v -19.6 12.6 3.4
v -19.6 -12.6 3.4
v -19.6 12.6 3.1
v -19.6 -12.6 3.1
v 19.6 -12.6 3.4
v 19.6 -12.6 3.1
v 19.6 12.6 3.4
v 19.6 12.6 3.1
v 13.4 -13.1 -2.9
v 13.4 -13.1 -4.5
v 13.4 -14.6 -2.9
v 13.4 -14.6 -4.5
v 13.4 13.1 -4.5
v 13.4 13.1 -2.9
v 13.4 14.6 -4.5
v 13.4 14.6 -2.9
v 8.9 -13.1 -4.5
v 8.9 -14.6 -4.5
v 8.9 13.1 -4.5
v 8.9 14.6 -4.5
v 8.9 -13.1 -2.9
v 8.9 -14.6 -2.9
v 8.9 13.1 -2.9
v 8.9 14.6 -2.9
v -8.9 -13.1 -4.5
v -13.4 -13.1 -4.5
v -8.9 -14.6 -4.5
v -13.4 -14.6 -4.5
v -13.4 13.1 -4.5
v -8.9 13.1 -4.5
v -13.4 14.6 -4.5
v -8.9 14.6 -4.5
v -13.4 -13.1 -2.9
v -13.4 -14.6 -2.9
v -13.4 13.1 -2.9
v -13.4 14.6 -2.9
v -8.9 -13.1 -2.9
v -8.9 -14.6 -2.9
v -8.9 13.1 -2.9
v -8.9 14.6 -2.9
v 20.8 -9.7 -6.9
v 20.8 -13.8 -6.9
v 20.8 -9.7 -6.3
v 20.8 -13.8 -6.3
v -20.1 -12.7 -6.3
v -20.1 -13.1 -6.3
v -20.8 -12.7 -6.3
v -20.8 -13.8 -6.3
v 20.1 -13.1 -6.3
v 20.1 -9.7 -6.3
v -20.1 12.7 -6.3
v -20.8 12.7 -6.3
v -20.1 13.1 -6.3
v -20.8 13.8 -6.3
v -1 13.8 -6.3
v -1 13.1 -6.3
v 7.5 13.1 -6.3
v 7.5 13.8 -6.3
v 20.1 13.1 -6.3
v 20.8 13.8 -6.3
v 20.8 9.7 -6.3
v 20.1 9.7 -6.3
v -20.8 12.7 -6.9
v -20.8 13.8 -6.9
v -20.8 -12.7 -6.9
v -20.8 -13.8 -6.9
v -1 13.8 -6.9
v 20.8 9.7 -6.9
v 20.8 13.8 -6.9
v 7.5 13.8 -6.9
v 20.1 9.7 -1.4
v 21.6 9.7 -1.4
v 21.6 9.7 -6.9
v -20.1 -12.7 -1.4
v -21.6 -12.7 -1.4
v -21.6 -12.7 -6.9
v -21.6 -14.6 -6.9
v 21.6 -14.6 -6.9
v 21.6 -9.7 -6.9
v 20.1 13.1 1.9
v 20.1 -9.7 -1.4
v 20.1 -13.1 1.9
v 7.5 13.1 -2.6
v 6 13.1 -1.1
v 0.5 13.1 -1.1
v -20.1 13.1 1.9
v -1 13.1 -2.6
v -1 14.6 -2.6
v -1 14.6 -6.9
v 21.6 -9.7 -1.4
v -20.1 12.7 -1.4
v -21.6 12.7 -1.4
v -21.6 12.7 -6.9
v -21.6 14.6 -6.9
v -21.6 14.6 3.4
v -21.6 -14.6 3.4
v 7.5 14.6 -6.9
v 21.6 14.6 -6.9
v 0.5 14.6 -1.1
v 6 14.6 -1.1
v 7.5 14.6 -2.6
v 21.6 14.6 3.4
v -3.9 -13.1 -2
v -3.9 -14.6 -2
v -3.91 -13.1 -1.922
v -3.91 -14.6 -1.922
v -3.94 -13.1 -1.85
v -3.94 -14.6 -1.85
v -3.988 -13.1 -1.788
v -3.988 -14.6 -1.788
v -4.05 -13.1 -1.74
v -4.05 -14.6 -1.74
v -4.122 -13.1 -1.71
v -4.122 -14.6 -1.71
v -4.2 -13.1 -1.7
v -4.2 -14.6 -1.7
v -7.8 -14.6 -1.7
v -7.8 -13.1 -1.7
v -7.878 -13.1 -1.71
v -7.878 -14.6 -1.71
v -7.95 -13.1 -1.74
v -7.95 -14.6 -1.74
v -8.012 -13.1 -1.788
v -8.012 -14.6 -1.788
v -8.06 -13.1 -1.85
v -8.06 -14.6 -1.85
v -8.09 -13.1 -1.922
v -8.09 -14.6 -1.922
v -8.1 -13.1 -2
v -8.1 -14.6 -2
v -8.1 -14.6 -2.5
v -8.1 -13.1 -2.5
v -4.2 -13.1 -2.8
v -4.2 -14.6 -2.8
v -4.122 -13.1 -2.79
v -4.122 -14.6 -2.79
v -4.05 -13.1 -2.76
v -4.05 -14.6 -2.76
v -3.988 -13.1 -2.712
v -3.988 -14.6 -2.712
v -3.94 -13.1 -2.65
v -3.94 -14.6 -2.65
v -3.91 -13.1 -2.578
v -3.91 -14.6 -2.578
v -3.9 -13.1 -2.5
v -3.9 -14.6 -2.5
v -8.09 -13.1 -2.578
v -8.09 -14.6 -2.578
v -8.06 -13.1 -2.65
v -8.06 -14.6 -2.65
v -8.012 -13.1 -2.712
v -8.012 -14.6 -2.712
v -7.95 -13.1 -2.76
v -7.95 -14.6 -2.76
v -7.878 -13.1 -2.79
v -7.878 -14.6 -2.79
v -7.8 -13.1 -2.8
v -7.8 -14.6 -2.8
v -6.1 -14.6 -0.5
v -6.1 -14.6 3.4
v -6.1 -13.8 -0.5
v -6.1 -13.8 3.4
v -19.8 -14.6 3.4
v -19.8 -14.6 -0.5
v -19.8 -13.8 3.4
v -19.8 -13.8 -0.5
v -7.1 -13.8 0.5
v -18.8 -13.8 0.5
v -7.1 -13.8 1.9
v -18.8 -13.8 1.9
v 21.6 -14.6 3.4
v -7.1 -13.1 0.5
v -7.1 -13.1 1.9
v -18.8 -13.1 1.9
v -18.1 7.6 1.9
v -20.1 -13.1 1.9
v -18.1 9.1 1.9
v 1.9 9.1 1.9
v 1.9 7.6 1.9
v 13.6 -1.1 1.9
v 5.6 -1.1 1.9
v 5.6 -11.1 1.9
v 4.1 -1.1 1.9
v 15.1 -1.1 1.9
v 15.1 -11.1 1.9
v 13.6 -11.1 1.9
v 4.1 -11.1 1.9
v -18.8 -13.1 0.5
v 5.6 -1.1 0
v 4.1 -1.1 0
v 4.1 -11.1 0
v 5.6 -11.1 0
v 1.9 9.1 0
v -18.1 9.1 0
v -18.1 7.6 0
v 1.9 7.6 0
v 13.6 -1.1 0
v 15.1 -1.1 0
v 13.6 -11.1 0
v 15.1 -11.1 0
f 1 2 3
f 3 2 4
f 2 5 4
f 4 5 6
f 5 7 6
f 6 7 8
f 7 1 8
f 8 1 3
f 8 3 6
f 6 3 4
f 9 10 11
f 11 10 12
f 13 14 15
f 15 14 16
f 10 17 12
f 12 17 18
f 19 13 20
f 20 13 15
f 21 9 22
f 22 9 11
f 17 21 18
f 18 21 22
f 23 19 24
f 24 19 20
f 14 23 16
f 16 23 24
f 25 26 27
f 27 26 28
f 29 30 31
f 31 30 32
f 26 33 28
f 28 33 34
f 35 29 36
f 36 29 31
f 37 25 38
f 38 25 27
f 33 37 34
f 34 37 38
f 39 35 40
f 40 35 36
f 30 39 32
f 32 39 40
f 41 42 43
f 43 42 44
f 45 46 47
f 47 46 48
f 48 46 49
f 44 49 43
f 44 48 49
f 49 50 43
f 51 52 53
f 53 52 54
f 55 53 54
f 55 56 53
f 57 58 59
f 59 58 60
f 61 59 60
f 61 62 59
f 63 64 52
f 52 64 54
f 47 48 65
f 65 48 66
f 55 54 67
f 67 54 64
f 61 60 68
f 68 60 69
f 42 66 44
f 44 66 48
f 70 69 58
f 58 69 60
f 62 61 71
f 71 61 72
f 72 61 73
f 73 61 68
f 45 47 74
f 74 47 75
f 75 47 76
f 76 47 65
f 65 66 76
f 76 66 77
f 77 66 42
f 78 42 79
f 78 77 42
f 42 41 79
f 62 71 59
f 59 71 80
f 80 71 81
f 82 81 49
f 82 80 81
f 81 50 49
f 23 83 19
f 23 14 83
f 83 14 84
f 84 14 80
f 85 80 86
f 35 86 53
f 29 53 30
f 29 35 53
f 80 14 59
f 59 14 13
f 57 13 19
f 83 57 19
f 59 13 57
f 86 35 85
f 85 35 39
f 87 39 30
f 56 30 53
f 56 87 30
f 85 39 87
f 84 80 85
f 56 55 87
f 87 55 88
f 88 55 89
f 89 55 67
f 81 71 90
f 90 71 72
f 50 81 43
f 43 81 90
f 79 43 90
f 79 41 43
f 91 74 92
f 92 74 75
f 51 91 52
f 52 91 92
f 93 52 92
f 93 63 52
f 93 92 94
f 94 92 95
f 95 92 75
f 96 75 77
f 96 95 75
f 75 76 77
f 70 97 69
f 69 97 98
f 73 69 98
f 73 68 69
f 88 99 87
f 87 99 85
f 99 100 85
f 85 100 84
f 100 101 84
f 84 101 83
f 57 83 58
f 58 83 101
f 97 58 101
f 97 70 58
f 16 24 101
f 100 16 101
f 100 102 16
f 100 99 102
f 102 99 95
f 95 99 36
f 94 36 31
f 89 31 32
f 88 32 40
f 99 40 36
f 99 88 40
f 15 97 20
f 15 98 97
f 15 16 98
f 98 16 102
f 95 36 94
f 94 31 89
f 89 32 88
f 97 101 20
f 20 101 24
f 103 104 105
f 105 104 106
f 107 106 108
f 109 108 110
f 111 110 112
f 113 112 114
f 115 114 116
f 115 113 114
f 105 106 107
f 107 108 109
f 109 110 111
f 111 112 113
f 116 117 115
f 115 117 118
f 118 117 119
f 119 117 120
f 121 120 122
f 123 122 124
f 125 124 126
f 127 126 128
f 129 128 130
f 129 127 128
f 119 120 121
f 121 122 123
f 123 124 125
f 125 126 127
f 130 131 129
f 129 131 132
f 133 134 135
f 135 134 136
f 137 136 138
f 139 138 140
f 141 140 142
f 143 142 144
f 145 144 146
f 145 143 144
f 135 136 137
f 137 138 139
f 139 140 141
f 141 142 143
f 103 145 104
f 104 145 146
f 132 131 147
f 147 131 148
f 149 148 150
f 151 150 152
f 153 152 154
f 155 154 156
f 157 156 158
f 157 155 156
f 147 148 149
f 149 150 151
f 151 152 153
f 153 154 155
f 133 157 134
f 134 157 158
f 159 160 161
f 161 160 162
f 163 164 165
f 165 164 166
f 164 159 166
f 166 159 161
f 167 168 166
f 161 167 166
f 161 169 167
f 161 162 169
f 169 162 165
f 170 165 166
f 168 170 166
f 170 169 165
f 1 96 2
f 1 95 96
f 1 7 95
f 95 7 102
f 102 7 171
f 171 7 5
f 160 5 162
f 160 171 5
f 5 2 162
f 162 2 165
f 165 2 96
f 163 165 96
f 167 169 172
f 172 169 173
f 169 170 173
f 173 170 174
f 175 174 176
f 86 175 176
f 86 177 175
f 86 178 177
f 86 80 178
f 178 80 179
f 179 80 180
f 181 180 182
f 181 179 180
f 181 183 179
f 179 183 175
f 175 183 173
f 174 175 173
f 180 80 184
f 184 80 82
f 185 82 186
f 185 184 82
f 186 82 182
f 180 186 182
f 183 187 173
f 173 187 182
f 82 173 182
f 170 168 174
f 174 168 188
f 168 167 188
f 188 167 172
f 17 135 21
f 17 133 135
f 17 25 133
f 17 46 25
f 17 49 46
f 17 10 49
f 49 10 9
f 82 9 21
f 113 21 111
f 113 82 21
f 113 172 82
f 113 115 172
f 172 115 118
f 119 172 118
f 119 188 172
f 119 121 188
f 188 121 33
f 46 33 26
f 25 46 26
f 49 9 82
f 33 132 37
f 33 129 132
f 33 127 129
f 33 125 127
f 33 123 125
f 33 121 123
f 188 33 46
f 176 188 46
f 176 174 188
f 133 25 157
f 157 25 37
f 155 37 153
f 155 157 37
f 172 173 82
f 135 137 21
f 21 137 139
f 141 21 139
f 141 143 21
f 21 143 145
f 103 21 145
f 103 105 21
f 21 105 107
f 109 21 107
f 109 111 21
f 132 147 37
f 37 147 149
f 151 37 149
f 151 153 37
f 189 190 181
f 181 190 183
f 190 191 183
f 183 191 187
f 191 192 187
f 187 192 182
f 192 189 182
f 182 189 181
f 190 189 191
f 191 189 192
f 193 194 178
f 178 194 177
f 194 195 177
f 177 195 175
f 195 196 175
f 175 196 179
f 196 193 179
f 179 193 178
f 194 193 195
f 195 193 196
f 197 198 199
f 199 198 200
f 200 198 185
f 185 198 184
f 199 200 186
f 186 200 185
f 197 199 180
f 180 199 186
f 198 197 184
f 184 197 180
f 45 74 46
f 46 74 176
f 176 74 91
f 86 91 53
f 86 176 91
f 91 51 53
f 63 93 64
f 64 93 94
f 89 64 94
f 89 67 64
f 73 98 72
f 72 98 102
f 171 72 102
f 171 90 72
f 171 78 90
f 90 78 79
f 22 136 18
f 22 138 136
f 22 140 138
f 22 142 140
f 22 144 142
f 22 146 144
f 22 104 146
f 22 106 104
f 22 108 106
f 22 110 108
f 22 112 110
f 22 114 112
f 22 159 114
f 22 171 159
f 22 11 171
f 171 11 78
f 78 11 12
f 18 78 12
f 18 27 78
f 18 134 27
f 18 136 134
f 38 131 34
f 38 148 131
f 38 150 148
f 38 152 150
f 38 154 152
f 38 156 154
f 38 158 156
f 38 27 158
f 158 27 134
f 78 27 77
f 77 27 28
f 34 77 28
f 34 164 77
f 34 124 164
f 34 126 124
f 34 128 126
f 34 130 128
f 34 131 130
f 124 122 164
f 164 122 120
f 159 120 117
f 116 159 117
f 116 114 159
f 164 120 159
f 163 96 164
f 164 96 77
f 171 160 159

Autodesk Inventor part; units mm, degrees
ref_plane "YZ Plane" through (0, 0, 0) normal (1, 0, 0) x (0, 1, 0)
ref_plane "XZ Plane" through (0, 0, 0) normal (0, 1, 0) x (-1, 0, 0)
ref_plane "EbeneBoden" through (-11.5031, -4.6031, 1.9) normal (0, 0, 1) x (1, 0, 0)
ref_plane "EbeneWändeEnde" through (17.7, 4.9, -6.9) normal (0, 0, -1) x (-1, 0, 0)
sketch "SkizzeBoden" plane through (-11.5031, -4.6031, 1.9) normal (0, 0, 1) x (1, 0, 0)
  line L0 (-7.1969, 7.4031) -> (6.8031, 7.4031) projected
  line L1 (6.8031, 7.4031) -> (6.8031, -7.7969) projected
  line L2 (6.8031, -7.7969) -> (4.3031, -7.7969) projected
  line L3 (4.3031, -7.7969) -> (4.3031, -6.7969) projected
  line L4 (4.3031, -6.7969) -> (-7.1969, -6.7969) projected
  line L5 (-7.1969, -6.7969) -> (-7.1969, 7.4031) projected
  line L6 (31.5031, 17.6031) -> (-8.4969, 17.6031) projected
  line L7 (-8.4969, 17.6031) -> (-8.4969, -8.3969) projected
  line L8 (-8.4969, -8.3969) -> (31.5031, -8.3969) projected
  line L9 (31.5031, -8.3969) -> (31.5031, 17.6031) projected
  line L10 (-18.7369, 4.6031) -> (41.7431, 4.6031) projected
  line L11 (11.5031, -15.8369) -> (11.5031, 25.0431) projected
  line L12 (-10.0969, 19.2031) -> (33.1031, 19.2031)
  line L13 (33.1031, 19.2031) -> (33.1031, -9.9969)
  line L14 (33.1031, -9.9969) -> (-10.0969, -9.9969)
  line L15 (-10.0969, -9.9969) -> (-10.0969, 19.2031)
  point P0 (11.5031, 4.6031)
  dimension "d0" = 1.6
extrude "Boden" add sketch "SkizzeBoden" along normal blind 1.5
sketch "SkizzeWände" plane through (-11.5031, -4.6031, 1.9) normal (0, 0, -1) x (-1, 0, 0)
  line L0 (10.0969, 19.2031) -> (-33.1031, 19.2031) projected
  line L1 (-33.1031, 19.2031) -> (-33.1031, -9.9969) projected
  line L2 (-33.1031, -9.9969) -> (10.0969, -9.9969) projected
  line L3 (10.0969, -9.9969) -> (10.0969, 19.2031) projected
  line L4 (-31.6031, 17.7031) -> (8.5969, 17.7031)
  line L5 (8.5969, 17.7031) -> (8.5969, -8.4969)
  line L6 (8.5969, -8.4969) -> (-31.6031, -8.4969)
  line L7 (-31.6031, -8.4969) -> (-31.6031, 17.7031)
  point P0 (-11.5031, 4.6031)
  dimension "d3" = 1.5
extrude "Wände" add sketch "SkizzeWände" along normal up to surface (8.8 mm away)
sketch "SkizzeAuflage" plane through (-11.5031, -4.6031, 1.9) normal (0, 0, -1) x (-1, 0, 0)
  line L0 (8.5969, -8.4969) -> (8.5969, 17.7031) projected
  line L1 (-31.6031, -8.4969) -> (8.5969, -8.4969) projected
  line L2 (-31.6031, 17.7031) -> (-31.6031, -8.4969) projected
  line L3 (8.5969, 17.7031) -> (-31.6031, 17.7031) projected
  line L4 (10.0969, 19.2031) -> (10.0969, -9.9969) projected
  line L5 (-33.1031, 19.2031) -> (10.0969, 19.2031) projected
  line L6 (-33.1031, -9.9969) -> (-33.1031, 19.2031) projected
  line L7 (10.0969, -9.9969) -> (-33.1031, -9.9969) projected
  line L8 (-26.6031, 3.5031) -> (-25.1031, 3.5031)
  line L9 (-25.1031, 3.5031) -> (-25.1031, -6.4969)
  line L10 (-25.1031, -6.4969) -> (-26.6031, -6.4969)
  line L11 (-26.6031, -6.4969) -> (-26.6031, 3.5031)
  line L12 (-17.1031, 3.5031) -> (-15.6031, 3.5031)
  line L13 (-15.6031, 3.5031) -> (-15.6031, -6.4969)
  line L14 (-15.6031, -6.4969) -> (-17.1031, -6.4969)
  line L15 (-17.1031, -6.4969) -> (-17.1031, 3.5031)
  line L16 (6.5969, 13.7031) -> (-13.4031, 13.7031)
  line L17 (-13.4031, 13.7031) -> (-13.4031, 12.2031)
  line L18 (-13.4031, 12.2031) -> (6.5969, 12.2031)
  line L19 (6.5969, 12.2031) -> (6.5969, 13.7031)
  point P0 (-11.5031, 4.6031)
  dimension "d6" = 5
  dimension "d7" = 1.5
  dimension "d8" = 8
  dimension "d9" = 2
  dimension "d10" = 10
  dimension "d11" = 20
  dimension "d12" = 1.5
  dimension "d13" = 4
  dimension "d14" = 2
ref_plane "EbeneAuflage" through (-20, -13, 0) normal (0, 0, 1) x (1, 0, 0)
extrude "Auflage" add sketch "SkizzeAuflage" along normal up to surface (1.9 mm away) contours L8 L9 L10 L11 | L12 L13 L14 L15 | L19 L18 L17 L16
sketch "SkizzeSD" plane through (-21.6, -14.6, 3.4) normal (0, -1, 0) x (1, 0, 0)
  line L0 (43.2, 0) -> (43.2, -10.3) projected
  line L1 (3.1, -2.6) -> (14.2, -2.6) projected
  line L2 (14.2, -2.6) -> (14.2, -1.6) projected
  line L3 (14.2, -1.6) -> (3.1, -1.6) projected
  line L4 (3.1, -1.6) -> (3.1, -2.6) projected
  line L5 (41.7, -1.5) -> (1.5, -1.5) projected
  line L6 (14.5, -1.5) -> (2.8, -1.5)
  line L7 (2.8, -1.5) -> (2.8, -2.9)
  line L8 (2.8, -2.9) -> (14.5, -2.9)
  line L9 (14.5, -2.9) -> (14.5, -1.5)
  line L10 (8.65, -4) -> (8.65, -0.8838) construction
  point P0 (21.6, -3.4)
  point P1 (8.65, -2.6)
  dimension "d17" = 0.3
  dimension "d18" = 0.3
extrude "SD" cut sketch "SkizzeSD" against normal up to surface (1.5 mm away) contours L4 L3 L2 L1 | L9 L8 L7 L5
sketch "Skizze7" plane through (-21.6, -14.6, 3.4) normal (0, -1, 0) x (1, 0, 0)
  line L0 (14.5, -1.5) -> (14.5, -2.9) projected
  line L1 (14.5, -2.9) -> (2.8, -2.9) projected
  line L2 (0, 0) -> (43.2, 0) projected
  line L3 (15.5, -3.9) -> (1.8, -3.9)
  line L4 (1.8, -3.9) -> (1.8, 0)
  line L5 (1.8, 0) -> (15.5, 0)
  line L6 (15.5, 0) -> (15.5, -3.9)
  line L7 (8.65, -3.6567) -> (8.65, -1) construction
  point P0 (21.6, -3.4)
  point P1 (8.65, -2.9)
  dimension "d21" = 1
  dimension "d22" = 1
extrude "SDHilfe" cut sketch "Skizze7" against normal blind 0.8
sketch "SkizzeLED" plane through (-21.6, -14.6, -6.9) normal (0, -1, 0) x (1, 0, 0)
  line L0 (16.6, 5.2) -> (17.6, 5.2) projected
  line L1 (16.6, 5.2) -> (16.6, 4.1) projected
  line L2 (17.6, 4.1) -> (16.6, 4.1) projected
  line L3 (17.6, 5.2) -> (17.6, 4.1) projected
  line L4 (15.1, 5.2) -> (16.1, 5.2) projected
  line L5 (15.1, 5.2) -> (15.1, 4.1) projected
  line L6 (16.1, 4.1) -> (15.1, 4.1) projected
  line L7 (16.1, 5.2) -> (16.1, 4.1) projected
  line L8 (13.6, 5.2) -> (14.6, 5.2) projected
  line L9 (13.6, 5.2) -> (13.6, 4.1) projected
  line L10 (14.6, 4.1) -> (13.6, 4.1) projected
  line L11 (14.6, 5.2) -> (14.6, 4.1) projected
  line L12 (15.6, 3.5363) -> (15.6, 5.4531) construction
  line L13 (17.7, 4.1) -> (13.5, 4.1)
  line L14 (13.5, 4.1) -> (13.5, 5.2)
  line L15 (13.5, 5.2) -> (17.7, 5.2)
  line L16 (17.7, 5.2) -> (17.7, 4.1)
  line L17 (41.6, 5.2) -> (1.6, 5.2) projected
  point P0 (21.6, 6.9)
  point P1 (15.6, 4.1)
  dimension "d25" = 0.1
extrude "LED" cut sketch "SkizzeLED" against normal up to surface (1.5 mm away)
fillet "RundungLED" radius 0.3 4 edges at (-8.1, -13.85, -2.8) (-3.9, -13.85, -2.8) (-8.1, -13.85, -1.7) (-3.9, -13.85, -1.7)
sketch "SkizzeUSB" plane through (-21.6, 14.6, 3.4) normal (0, 1, 0) x (1, 0, 0)
  line L0 (43.2, 10.3) -> (0, 10.3) projected
  ellipse E0 centre (28.273, 7.641) end of major axis (28.5965, 8.1263) minor radius 0.5 (28.8, 7.72) -> (28.3475, 8.2) ccw projected
  line L1 (28.3475, 8.2) -> (21.3525, 8.2) projected
  ellipse E1 centre (21.427, 7.641) end of major axis (21.1035, 8.1263) minor radius 0.5 (21.3525, 8.2) -> (20.9, 7.72) ccw projected
  line L2 (20.9, 7.72) -> (20.9, 6.4602) projected
  line L3 (22.4652, 4.8) -> (20.9, 6.4602) projected
  line L4 (22.4652, 4.8) -> (27.2348, 4.8) projected
  line L5 (28.8, 6.4602) -> (27.2348, 4.8) projected
  line L6 (28.8, 6.4602) -> (28.8, 7.72) projected
  ellipse E2 centre (28.273, 7.641) end of major axis (28.5965, 8.1263) minor radius 0.5 (28.8, 7.72) -> (28.3475, 8.2) ccw projected
  line L7 (28.3475, 8.2) -> (21.3525, 8.2) projected
  ellipse E3 centre (21.427, 7.641) end of major axis (21.1035, 8.1263) minor radius 0.5 (21.3525, 8.2) -> (20.9, 7.72) ccw projected
  line L8 (20.9, 7.72) -> (20.9, 6.4602) projected
  line L9 (22.4652, 4.8) -> (20.9, 6.4602) projected
  line L10 (22.4652, 4.8) -> (27.2348, 4.8) projected
  line L11 (28.8, 6.4602) -> (27.2348, 4.8) projected
  line L12 (28.8, 6.4602) -> (28.8, 7.72) projected
  line L13 (20.6, 10.3) -> (29.1, 10.3)
  line L14 (29.1, 10.3) -> (29.1, 4.5)
  line L15 (29.1, 4.5) -> (20.6, 4.5)
  line L16 (20.6, 4.5) -> (20.6, 10.3)
  line L17 (24.85, 8.6856) -> (24.85, 4.4469) construction
  point P0 (21.6, 3.4)
  point P1 (24.85, 8.2)
  dimension "d29" = 0.3
  dimension "d30" = 0.3
extrude "USB" cut sketch "SkizzeUSB" against normal up to surface (1.5 mm away) contours L14 L15 L16 L0 | L6 L5 L4 L3 L2 E1 L1 E0
chamfer "FaseUSB" distance 1.5 angle 45 2 edges at (7.5, 13.85, -1.1) (-1, 13.85, -1.1)
sketch "Skizze10" plane through (-21.6, -14.6, 3.4) normal (-1, 0, 0) x (0, 0, 1)
  line L0 (-10.3, 29.2) -> (-10.3, 0) projected
  line L1 (-5.1, 27) -> (-5.1, 12) projected
  line L2 (-5.1, 27) -> (-8.8, 27) projected
  line L3 (-8.8, 12) -> (-8.8, 27) projected
  line L4 (-5.1, 12) -> (-8.8, 12) projected
  line L5 (-5.1, 11.2) -> (-5.1, 2.2) projected
  line L6 (-5.1, 11.2) -> (-8.8, 11.2) projected
  line L7 (-8.8, 2.2) -> (-8.8, 11.2) projected
  line L8 (-5.1, 2.2) -> (-8.8, 2.2) projected
  line L9 (-4.8, 1.9) -> (-10.3, 1.9)
  line L10 (-10.3, 1.9) -> (-10.3, 27.3)
  line L11 (-10.3, 27.3) -> (-4.8, 27.3)
  line L12 (-4.8, 27.3) -> (-4.8, 1.9)
  line L13 (0, 29.2) -> (0, 0) projected
  line L14 (-10.3, 29.2) -> (0, 29.2) projected
  line L15 (3, 14.6) -> (-13.529, 14.6) construction
  line L16 (-8.4, 2.6) -> (-8.4, 10.8) projected
  line L17 (-8.4, 10.8) -> (-5.5, 10.8) projected
  line L18 (-5.5, 10.8) -> (-5.5, 2.6) projected
  line L19 (-5.5, 2.6) -> (-8.4, 2.6) projected
  line L20 (-8.4, 12.4) -> (-8.4, 26.6) projected
  line L21 (-8.4, 26.6) -> (-5.5, 26.6) projected
  line L22 (-5.5, 26.6) -> (-5.5, 12.4) projected
  line L23 (-5.5, 12.4) -> (-8.4, 12.4) projected
  point P0 (-3.4, 14.6)
  point P1 (0, 14.6)
  dimension "d36" = 0.3
  dimension "d38" = 0.3
extrude "JSTFC" cut sketch "Skizze10" against normal up to surface (1.5 mm away) contours L11 L12 L9 L0 | L1 L4 L3 L2 | L5 L8 L7 L6 | L16 L17 L18 L19 | L20 L21 L22 L23
sketch "Skizze11" plane through (21.6, -14.6, 3.4) normal (1, 0, 0) x (0, 0, -1)
  line L0 (10.3, 0) -> (10.3, 29.2) projected
  line L1 (13.0125, 14.6) -> (-3.6442, 14.6) construction
  line L2 (5.1, 15) -> (5.1, 24) projected
  line L3 (5.1, 15) -> (8.8, 15) projected
  line L4 (8.8, 24) -> (8.8, 15) projected
  line L5 (5.1, 24) -> (8.8, 24) projected
  line L6 (5.1, 5.2) -> (5.1, 14.2) projected
  line L7 (5.1, 5.2) -> (8.8, 5.2) projected
  line L8 (8.8, 14.2) -> (8.8, 5.2) projected
  line L9 (5.1, 14.2) -> (8.8, 14.2) projected
  line L10 (10.3, 24.3) -> (4.8, 24.3)
  line L11 (4.8, 24.3) -> (4.8, 4.9)
  line L12 (4.8, 4.9) -> (10.3, 4.9)
  line L13 (10.3, 4.9) -> (10.3, 24.3)
  line L14 (5.5, 13.8) -> (8.4, 13.8) projected
  line L15 (8.4, 13.8) -> (8.4, 5.6) projected
  line L16 (8.4, 5.6) -> (5.5, 5.6) projected
  line L17 (5.5, 5.6) -> (5.5, 13.8) projected
  line L18 (8.4, 23.6) -> (8.4, 15.4) projected
  line L19 (8.4, 15.4) -> (5.5, 15.4) projected
  line L20 (5.5, 15.4) -> (5.5, 23.6) projected
  line L21 (5.5, 23.6) -> (8.4, 23.6) projected
  point P0 (3.4, 14.6)
  point P1 (10.3, 14.6)
  dimension "d41" = 0.3
  dimension "d42" = 0.3
extrude "JSTOSD" cut sketch "Skizze11" against normal up to surface (1.5 mm away) contours L12 L11 L10 L0 | L2 L5 L4 L3 | L6 L9 L8 L7 | L14 L15 L16 L17 | L18 L19 L20 L21
sketch "Skizze12" plane through (21.6, -14.6, -6.9) normal (0, 0, -1) x (-1, 0, 0)
  line L0 (0, 0) -> (0, 4.9) projected
  line L1 (43.2, 0) -> (0, 0) projected
  line L2 (21.6, -5.84) -> (21.6, 35.04) projected
  line L3 (51.84, 14.6) -> (-8.64, 14.6) projected
  line L4 (0.8, 28.4) -> (42.4, 28.4)
  line L5 (42.4, 28.4) -> (42.4, 0.8)
  line L6 (42.4, 0.8) -> (0.8, 0.8)
  line L7 (0.8, 0.8) -> (0.8, 28.4)
  point P0 (21.6, 14.6)
  dimension "d45" = 0.8
  dimension "d46" = 0.8
extrude "Lippe" cut sketch "Skizze12" against normal blind 0.6
sketch "SkizzeSchnapper" plane through (-21.6, -14.6, -6.9) normal (0, -1, 0) x (1, 0, 0)
  line L0 (36.2, 5.2) -> (41.6, 5.2) projected
  line L1 (36.2, 5.2) -> (36.2, 1.5) projected
  line L2 (42.4, 1.5) -> (36.2, 1.5) projected
  line L3 (42.4, 5.2) -> (42.4, 1.5) projected
  line L4 (41.6, 5.2) -> (42.4, 5.2) projected
  line L5 (0.8, 5.2) -> (1.6, 5.2) projected
  line L6 (0.8, 5.2) -> (0.8, 1.5) projected
  line L7 (7, 1.5) -> (0.8, 1.5) projected
  line L8 (7, 5.2) -> (7, 1.5) projected
  line L9 (1.6, 5.2) -> (7, 5.2) projected
  ellipse E0 centre (28.273, 2.659) end of major axis (28.5965, 2.1737) minor radius 0.5 (28.3475, 2.1) -> (28.8, 2.58) ccw projected
  line L10 (28.3475, 2.1) -> (21.3525, 2.1) projected
  ellipse E1 centre (21.427, 2.659) end of major axis (21.1035, 2.1737) minor radius 0.5 (20.9, 2.58) -> (21.3525, 2.1) ccw projected
  line L11 (20.9, 2.58) -> (20.9, 3.8398) projected
  line L12 (22.4652, 5.5) -> (20.9, 3.8398) projected
  line L13 (22.4652, 5.5) -> (27.2348, 5.5) projected
  line L14 (28.8, 3.8398) -> (27.2348, 5.5) projected
  line L15 (28.8, 3.8398) -> (28.8, 2.58) projected
  line L16 (35, 2.4) -> (30.5, 2.4)
  line L17 (30.5, 2.4) -> (30.5, 4)
  line L18 (30.5, 4) -> (35, 4)
  line L19 (35, 4) -> (35, 2.4)
  line L20 (21.6, -2.06) -> (21.6, 12.36) projected
  line L21 (1.5, 0.6) -> (0.8, 0.6) projected
  line L22 (41.7, 0.6) -> (1.5, 0.6) projected
  line L23 (42.4, 0.6) -> (41.7, 0.6) projected
  line L24 (0.8, 0.6) -> (42.4, 0.6) projected
  line L25 (41.6, 5.2) -> (1.6, 5.2) projected
  line L26 (8.2, 2.4) -> (12.7, 2.4)
  line L27 (12.7, 2.4) -> (12.7, 4)
  line L28 (12.7, 4) -> (8.2, 4)
  line L29 (8.2, 4) -> (8.2, 2.4)
  point P0 (21.6, 6.9)
  dimension "d49" = 4.5
  dimension "d50" = 1.8
  dimension "d51" = 1.2
  dimension "d52" = 1.6
  dimension "d53" = 1.2
extrude "Schnapper" cut sketch "SkizzeSchnapper" against normal up to surface (29.2 mm away) contours L16 L17 L18 L19 | L29 L28 L27 L26
sketch "SkizzeAufkleber" plane through (-11.5031, -4.6031, 3.4) normal (0, 0, 1) x (1, 0, 0)
  line L0 (33.1031, 19.2031) -> (-10.0969, 19.2031) projected
  line L1 (-10.0969, 19.2031) -> (-10.0969, -9.9969) projected
  line L2 (11.5031, -15.8369) -> (11.5031, 25.0431) projected
  line L3 (-18.7369, 4.6031) -> (41.7431, 4.6031) projected
  line L4 (-8.0969, 17.2031) -> (31.1031, 17.2031)
  line L5 (31.1031, 17.2031) -> (31.1031, -7.9969)
  line L6 (31.1031, -7.9969) -> (-8.0969, -7.9969)
  line L7 (-8.0969, -7.9969) -> (-8.0969, 17.2031)
  point P0 (11.5031, 4.6031)
  dimension "d56" = 2
  dimension "d57" = 2
extrude "Aufkleber" cut sketch "SkizzeAufkleber" against normal blind 0.3 contours L4 L5 L3 L2 | L2 L3 L7 L4 | L3 L5 L6 L2 | L2 L6 L7 L3
properties part number "Boden"
